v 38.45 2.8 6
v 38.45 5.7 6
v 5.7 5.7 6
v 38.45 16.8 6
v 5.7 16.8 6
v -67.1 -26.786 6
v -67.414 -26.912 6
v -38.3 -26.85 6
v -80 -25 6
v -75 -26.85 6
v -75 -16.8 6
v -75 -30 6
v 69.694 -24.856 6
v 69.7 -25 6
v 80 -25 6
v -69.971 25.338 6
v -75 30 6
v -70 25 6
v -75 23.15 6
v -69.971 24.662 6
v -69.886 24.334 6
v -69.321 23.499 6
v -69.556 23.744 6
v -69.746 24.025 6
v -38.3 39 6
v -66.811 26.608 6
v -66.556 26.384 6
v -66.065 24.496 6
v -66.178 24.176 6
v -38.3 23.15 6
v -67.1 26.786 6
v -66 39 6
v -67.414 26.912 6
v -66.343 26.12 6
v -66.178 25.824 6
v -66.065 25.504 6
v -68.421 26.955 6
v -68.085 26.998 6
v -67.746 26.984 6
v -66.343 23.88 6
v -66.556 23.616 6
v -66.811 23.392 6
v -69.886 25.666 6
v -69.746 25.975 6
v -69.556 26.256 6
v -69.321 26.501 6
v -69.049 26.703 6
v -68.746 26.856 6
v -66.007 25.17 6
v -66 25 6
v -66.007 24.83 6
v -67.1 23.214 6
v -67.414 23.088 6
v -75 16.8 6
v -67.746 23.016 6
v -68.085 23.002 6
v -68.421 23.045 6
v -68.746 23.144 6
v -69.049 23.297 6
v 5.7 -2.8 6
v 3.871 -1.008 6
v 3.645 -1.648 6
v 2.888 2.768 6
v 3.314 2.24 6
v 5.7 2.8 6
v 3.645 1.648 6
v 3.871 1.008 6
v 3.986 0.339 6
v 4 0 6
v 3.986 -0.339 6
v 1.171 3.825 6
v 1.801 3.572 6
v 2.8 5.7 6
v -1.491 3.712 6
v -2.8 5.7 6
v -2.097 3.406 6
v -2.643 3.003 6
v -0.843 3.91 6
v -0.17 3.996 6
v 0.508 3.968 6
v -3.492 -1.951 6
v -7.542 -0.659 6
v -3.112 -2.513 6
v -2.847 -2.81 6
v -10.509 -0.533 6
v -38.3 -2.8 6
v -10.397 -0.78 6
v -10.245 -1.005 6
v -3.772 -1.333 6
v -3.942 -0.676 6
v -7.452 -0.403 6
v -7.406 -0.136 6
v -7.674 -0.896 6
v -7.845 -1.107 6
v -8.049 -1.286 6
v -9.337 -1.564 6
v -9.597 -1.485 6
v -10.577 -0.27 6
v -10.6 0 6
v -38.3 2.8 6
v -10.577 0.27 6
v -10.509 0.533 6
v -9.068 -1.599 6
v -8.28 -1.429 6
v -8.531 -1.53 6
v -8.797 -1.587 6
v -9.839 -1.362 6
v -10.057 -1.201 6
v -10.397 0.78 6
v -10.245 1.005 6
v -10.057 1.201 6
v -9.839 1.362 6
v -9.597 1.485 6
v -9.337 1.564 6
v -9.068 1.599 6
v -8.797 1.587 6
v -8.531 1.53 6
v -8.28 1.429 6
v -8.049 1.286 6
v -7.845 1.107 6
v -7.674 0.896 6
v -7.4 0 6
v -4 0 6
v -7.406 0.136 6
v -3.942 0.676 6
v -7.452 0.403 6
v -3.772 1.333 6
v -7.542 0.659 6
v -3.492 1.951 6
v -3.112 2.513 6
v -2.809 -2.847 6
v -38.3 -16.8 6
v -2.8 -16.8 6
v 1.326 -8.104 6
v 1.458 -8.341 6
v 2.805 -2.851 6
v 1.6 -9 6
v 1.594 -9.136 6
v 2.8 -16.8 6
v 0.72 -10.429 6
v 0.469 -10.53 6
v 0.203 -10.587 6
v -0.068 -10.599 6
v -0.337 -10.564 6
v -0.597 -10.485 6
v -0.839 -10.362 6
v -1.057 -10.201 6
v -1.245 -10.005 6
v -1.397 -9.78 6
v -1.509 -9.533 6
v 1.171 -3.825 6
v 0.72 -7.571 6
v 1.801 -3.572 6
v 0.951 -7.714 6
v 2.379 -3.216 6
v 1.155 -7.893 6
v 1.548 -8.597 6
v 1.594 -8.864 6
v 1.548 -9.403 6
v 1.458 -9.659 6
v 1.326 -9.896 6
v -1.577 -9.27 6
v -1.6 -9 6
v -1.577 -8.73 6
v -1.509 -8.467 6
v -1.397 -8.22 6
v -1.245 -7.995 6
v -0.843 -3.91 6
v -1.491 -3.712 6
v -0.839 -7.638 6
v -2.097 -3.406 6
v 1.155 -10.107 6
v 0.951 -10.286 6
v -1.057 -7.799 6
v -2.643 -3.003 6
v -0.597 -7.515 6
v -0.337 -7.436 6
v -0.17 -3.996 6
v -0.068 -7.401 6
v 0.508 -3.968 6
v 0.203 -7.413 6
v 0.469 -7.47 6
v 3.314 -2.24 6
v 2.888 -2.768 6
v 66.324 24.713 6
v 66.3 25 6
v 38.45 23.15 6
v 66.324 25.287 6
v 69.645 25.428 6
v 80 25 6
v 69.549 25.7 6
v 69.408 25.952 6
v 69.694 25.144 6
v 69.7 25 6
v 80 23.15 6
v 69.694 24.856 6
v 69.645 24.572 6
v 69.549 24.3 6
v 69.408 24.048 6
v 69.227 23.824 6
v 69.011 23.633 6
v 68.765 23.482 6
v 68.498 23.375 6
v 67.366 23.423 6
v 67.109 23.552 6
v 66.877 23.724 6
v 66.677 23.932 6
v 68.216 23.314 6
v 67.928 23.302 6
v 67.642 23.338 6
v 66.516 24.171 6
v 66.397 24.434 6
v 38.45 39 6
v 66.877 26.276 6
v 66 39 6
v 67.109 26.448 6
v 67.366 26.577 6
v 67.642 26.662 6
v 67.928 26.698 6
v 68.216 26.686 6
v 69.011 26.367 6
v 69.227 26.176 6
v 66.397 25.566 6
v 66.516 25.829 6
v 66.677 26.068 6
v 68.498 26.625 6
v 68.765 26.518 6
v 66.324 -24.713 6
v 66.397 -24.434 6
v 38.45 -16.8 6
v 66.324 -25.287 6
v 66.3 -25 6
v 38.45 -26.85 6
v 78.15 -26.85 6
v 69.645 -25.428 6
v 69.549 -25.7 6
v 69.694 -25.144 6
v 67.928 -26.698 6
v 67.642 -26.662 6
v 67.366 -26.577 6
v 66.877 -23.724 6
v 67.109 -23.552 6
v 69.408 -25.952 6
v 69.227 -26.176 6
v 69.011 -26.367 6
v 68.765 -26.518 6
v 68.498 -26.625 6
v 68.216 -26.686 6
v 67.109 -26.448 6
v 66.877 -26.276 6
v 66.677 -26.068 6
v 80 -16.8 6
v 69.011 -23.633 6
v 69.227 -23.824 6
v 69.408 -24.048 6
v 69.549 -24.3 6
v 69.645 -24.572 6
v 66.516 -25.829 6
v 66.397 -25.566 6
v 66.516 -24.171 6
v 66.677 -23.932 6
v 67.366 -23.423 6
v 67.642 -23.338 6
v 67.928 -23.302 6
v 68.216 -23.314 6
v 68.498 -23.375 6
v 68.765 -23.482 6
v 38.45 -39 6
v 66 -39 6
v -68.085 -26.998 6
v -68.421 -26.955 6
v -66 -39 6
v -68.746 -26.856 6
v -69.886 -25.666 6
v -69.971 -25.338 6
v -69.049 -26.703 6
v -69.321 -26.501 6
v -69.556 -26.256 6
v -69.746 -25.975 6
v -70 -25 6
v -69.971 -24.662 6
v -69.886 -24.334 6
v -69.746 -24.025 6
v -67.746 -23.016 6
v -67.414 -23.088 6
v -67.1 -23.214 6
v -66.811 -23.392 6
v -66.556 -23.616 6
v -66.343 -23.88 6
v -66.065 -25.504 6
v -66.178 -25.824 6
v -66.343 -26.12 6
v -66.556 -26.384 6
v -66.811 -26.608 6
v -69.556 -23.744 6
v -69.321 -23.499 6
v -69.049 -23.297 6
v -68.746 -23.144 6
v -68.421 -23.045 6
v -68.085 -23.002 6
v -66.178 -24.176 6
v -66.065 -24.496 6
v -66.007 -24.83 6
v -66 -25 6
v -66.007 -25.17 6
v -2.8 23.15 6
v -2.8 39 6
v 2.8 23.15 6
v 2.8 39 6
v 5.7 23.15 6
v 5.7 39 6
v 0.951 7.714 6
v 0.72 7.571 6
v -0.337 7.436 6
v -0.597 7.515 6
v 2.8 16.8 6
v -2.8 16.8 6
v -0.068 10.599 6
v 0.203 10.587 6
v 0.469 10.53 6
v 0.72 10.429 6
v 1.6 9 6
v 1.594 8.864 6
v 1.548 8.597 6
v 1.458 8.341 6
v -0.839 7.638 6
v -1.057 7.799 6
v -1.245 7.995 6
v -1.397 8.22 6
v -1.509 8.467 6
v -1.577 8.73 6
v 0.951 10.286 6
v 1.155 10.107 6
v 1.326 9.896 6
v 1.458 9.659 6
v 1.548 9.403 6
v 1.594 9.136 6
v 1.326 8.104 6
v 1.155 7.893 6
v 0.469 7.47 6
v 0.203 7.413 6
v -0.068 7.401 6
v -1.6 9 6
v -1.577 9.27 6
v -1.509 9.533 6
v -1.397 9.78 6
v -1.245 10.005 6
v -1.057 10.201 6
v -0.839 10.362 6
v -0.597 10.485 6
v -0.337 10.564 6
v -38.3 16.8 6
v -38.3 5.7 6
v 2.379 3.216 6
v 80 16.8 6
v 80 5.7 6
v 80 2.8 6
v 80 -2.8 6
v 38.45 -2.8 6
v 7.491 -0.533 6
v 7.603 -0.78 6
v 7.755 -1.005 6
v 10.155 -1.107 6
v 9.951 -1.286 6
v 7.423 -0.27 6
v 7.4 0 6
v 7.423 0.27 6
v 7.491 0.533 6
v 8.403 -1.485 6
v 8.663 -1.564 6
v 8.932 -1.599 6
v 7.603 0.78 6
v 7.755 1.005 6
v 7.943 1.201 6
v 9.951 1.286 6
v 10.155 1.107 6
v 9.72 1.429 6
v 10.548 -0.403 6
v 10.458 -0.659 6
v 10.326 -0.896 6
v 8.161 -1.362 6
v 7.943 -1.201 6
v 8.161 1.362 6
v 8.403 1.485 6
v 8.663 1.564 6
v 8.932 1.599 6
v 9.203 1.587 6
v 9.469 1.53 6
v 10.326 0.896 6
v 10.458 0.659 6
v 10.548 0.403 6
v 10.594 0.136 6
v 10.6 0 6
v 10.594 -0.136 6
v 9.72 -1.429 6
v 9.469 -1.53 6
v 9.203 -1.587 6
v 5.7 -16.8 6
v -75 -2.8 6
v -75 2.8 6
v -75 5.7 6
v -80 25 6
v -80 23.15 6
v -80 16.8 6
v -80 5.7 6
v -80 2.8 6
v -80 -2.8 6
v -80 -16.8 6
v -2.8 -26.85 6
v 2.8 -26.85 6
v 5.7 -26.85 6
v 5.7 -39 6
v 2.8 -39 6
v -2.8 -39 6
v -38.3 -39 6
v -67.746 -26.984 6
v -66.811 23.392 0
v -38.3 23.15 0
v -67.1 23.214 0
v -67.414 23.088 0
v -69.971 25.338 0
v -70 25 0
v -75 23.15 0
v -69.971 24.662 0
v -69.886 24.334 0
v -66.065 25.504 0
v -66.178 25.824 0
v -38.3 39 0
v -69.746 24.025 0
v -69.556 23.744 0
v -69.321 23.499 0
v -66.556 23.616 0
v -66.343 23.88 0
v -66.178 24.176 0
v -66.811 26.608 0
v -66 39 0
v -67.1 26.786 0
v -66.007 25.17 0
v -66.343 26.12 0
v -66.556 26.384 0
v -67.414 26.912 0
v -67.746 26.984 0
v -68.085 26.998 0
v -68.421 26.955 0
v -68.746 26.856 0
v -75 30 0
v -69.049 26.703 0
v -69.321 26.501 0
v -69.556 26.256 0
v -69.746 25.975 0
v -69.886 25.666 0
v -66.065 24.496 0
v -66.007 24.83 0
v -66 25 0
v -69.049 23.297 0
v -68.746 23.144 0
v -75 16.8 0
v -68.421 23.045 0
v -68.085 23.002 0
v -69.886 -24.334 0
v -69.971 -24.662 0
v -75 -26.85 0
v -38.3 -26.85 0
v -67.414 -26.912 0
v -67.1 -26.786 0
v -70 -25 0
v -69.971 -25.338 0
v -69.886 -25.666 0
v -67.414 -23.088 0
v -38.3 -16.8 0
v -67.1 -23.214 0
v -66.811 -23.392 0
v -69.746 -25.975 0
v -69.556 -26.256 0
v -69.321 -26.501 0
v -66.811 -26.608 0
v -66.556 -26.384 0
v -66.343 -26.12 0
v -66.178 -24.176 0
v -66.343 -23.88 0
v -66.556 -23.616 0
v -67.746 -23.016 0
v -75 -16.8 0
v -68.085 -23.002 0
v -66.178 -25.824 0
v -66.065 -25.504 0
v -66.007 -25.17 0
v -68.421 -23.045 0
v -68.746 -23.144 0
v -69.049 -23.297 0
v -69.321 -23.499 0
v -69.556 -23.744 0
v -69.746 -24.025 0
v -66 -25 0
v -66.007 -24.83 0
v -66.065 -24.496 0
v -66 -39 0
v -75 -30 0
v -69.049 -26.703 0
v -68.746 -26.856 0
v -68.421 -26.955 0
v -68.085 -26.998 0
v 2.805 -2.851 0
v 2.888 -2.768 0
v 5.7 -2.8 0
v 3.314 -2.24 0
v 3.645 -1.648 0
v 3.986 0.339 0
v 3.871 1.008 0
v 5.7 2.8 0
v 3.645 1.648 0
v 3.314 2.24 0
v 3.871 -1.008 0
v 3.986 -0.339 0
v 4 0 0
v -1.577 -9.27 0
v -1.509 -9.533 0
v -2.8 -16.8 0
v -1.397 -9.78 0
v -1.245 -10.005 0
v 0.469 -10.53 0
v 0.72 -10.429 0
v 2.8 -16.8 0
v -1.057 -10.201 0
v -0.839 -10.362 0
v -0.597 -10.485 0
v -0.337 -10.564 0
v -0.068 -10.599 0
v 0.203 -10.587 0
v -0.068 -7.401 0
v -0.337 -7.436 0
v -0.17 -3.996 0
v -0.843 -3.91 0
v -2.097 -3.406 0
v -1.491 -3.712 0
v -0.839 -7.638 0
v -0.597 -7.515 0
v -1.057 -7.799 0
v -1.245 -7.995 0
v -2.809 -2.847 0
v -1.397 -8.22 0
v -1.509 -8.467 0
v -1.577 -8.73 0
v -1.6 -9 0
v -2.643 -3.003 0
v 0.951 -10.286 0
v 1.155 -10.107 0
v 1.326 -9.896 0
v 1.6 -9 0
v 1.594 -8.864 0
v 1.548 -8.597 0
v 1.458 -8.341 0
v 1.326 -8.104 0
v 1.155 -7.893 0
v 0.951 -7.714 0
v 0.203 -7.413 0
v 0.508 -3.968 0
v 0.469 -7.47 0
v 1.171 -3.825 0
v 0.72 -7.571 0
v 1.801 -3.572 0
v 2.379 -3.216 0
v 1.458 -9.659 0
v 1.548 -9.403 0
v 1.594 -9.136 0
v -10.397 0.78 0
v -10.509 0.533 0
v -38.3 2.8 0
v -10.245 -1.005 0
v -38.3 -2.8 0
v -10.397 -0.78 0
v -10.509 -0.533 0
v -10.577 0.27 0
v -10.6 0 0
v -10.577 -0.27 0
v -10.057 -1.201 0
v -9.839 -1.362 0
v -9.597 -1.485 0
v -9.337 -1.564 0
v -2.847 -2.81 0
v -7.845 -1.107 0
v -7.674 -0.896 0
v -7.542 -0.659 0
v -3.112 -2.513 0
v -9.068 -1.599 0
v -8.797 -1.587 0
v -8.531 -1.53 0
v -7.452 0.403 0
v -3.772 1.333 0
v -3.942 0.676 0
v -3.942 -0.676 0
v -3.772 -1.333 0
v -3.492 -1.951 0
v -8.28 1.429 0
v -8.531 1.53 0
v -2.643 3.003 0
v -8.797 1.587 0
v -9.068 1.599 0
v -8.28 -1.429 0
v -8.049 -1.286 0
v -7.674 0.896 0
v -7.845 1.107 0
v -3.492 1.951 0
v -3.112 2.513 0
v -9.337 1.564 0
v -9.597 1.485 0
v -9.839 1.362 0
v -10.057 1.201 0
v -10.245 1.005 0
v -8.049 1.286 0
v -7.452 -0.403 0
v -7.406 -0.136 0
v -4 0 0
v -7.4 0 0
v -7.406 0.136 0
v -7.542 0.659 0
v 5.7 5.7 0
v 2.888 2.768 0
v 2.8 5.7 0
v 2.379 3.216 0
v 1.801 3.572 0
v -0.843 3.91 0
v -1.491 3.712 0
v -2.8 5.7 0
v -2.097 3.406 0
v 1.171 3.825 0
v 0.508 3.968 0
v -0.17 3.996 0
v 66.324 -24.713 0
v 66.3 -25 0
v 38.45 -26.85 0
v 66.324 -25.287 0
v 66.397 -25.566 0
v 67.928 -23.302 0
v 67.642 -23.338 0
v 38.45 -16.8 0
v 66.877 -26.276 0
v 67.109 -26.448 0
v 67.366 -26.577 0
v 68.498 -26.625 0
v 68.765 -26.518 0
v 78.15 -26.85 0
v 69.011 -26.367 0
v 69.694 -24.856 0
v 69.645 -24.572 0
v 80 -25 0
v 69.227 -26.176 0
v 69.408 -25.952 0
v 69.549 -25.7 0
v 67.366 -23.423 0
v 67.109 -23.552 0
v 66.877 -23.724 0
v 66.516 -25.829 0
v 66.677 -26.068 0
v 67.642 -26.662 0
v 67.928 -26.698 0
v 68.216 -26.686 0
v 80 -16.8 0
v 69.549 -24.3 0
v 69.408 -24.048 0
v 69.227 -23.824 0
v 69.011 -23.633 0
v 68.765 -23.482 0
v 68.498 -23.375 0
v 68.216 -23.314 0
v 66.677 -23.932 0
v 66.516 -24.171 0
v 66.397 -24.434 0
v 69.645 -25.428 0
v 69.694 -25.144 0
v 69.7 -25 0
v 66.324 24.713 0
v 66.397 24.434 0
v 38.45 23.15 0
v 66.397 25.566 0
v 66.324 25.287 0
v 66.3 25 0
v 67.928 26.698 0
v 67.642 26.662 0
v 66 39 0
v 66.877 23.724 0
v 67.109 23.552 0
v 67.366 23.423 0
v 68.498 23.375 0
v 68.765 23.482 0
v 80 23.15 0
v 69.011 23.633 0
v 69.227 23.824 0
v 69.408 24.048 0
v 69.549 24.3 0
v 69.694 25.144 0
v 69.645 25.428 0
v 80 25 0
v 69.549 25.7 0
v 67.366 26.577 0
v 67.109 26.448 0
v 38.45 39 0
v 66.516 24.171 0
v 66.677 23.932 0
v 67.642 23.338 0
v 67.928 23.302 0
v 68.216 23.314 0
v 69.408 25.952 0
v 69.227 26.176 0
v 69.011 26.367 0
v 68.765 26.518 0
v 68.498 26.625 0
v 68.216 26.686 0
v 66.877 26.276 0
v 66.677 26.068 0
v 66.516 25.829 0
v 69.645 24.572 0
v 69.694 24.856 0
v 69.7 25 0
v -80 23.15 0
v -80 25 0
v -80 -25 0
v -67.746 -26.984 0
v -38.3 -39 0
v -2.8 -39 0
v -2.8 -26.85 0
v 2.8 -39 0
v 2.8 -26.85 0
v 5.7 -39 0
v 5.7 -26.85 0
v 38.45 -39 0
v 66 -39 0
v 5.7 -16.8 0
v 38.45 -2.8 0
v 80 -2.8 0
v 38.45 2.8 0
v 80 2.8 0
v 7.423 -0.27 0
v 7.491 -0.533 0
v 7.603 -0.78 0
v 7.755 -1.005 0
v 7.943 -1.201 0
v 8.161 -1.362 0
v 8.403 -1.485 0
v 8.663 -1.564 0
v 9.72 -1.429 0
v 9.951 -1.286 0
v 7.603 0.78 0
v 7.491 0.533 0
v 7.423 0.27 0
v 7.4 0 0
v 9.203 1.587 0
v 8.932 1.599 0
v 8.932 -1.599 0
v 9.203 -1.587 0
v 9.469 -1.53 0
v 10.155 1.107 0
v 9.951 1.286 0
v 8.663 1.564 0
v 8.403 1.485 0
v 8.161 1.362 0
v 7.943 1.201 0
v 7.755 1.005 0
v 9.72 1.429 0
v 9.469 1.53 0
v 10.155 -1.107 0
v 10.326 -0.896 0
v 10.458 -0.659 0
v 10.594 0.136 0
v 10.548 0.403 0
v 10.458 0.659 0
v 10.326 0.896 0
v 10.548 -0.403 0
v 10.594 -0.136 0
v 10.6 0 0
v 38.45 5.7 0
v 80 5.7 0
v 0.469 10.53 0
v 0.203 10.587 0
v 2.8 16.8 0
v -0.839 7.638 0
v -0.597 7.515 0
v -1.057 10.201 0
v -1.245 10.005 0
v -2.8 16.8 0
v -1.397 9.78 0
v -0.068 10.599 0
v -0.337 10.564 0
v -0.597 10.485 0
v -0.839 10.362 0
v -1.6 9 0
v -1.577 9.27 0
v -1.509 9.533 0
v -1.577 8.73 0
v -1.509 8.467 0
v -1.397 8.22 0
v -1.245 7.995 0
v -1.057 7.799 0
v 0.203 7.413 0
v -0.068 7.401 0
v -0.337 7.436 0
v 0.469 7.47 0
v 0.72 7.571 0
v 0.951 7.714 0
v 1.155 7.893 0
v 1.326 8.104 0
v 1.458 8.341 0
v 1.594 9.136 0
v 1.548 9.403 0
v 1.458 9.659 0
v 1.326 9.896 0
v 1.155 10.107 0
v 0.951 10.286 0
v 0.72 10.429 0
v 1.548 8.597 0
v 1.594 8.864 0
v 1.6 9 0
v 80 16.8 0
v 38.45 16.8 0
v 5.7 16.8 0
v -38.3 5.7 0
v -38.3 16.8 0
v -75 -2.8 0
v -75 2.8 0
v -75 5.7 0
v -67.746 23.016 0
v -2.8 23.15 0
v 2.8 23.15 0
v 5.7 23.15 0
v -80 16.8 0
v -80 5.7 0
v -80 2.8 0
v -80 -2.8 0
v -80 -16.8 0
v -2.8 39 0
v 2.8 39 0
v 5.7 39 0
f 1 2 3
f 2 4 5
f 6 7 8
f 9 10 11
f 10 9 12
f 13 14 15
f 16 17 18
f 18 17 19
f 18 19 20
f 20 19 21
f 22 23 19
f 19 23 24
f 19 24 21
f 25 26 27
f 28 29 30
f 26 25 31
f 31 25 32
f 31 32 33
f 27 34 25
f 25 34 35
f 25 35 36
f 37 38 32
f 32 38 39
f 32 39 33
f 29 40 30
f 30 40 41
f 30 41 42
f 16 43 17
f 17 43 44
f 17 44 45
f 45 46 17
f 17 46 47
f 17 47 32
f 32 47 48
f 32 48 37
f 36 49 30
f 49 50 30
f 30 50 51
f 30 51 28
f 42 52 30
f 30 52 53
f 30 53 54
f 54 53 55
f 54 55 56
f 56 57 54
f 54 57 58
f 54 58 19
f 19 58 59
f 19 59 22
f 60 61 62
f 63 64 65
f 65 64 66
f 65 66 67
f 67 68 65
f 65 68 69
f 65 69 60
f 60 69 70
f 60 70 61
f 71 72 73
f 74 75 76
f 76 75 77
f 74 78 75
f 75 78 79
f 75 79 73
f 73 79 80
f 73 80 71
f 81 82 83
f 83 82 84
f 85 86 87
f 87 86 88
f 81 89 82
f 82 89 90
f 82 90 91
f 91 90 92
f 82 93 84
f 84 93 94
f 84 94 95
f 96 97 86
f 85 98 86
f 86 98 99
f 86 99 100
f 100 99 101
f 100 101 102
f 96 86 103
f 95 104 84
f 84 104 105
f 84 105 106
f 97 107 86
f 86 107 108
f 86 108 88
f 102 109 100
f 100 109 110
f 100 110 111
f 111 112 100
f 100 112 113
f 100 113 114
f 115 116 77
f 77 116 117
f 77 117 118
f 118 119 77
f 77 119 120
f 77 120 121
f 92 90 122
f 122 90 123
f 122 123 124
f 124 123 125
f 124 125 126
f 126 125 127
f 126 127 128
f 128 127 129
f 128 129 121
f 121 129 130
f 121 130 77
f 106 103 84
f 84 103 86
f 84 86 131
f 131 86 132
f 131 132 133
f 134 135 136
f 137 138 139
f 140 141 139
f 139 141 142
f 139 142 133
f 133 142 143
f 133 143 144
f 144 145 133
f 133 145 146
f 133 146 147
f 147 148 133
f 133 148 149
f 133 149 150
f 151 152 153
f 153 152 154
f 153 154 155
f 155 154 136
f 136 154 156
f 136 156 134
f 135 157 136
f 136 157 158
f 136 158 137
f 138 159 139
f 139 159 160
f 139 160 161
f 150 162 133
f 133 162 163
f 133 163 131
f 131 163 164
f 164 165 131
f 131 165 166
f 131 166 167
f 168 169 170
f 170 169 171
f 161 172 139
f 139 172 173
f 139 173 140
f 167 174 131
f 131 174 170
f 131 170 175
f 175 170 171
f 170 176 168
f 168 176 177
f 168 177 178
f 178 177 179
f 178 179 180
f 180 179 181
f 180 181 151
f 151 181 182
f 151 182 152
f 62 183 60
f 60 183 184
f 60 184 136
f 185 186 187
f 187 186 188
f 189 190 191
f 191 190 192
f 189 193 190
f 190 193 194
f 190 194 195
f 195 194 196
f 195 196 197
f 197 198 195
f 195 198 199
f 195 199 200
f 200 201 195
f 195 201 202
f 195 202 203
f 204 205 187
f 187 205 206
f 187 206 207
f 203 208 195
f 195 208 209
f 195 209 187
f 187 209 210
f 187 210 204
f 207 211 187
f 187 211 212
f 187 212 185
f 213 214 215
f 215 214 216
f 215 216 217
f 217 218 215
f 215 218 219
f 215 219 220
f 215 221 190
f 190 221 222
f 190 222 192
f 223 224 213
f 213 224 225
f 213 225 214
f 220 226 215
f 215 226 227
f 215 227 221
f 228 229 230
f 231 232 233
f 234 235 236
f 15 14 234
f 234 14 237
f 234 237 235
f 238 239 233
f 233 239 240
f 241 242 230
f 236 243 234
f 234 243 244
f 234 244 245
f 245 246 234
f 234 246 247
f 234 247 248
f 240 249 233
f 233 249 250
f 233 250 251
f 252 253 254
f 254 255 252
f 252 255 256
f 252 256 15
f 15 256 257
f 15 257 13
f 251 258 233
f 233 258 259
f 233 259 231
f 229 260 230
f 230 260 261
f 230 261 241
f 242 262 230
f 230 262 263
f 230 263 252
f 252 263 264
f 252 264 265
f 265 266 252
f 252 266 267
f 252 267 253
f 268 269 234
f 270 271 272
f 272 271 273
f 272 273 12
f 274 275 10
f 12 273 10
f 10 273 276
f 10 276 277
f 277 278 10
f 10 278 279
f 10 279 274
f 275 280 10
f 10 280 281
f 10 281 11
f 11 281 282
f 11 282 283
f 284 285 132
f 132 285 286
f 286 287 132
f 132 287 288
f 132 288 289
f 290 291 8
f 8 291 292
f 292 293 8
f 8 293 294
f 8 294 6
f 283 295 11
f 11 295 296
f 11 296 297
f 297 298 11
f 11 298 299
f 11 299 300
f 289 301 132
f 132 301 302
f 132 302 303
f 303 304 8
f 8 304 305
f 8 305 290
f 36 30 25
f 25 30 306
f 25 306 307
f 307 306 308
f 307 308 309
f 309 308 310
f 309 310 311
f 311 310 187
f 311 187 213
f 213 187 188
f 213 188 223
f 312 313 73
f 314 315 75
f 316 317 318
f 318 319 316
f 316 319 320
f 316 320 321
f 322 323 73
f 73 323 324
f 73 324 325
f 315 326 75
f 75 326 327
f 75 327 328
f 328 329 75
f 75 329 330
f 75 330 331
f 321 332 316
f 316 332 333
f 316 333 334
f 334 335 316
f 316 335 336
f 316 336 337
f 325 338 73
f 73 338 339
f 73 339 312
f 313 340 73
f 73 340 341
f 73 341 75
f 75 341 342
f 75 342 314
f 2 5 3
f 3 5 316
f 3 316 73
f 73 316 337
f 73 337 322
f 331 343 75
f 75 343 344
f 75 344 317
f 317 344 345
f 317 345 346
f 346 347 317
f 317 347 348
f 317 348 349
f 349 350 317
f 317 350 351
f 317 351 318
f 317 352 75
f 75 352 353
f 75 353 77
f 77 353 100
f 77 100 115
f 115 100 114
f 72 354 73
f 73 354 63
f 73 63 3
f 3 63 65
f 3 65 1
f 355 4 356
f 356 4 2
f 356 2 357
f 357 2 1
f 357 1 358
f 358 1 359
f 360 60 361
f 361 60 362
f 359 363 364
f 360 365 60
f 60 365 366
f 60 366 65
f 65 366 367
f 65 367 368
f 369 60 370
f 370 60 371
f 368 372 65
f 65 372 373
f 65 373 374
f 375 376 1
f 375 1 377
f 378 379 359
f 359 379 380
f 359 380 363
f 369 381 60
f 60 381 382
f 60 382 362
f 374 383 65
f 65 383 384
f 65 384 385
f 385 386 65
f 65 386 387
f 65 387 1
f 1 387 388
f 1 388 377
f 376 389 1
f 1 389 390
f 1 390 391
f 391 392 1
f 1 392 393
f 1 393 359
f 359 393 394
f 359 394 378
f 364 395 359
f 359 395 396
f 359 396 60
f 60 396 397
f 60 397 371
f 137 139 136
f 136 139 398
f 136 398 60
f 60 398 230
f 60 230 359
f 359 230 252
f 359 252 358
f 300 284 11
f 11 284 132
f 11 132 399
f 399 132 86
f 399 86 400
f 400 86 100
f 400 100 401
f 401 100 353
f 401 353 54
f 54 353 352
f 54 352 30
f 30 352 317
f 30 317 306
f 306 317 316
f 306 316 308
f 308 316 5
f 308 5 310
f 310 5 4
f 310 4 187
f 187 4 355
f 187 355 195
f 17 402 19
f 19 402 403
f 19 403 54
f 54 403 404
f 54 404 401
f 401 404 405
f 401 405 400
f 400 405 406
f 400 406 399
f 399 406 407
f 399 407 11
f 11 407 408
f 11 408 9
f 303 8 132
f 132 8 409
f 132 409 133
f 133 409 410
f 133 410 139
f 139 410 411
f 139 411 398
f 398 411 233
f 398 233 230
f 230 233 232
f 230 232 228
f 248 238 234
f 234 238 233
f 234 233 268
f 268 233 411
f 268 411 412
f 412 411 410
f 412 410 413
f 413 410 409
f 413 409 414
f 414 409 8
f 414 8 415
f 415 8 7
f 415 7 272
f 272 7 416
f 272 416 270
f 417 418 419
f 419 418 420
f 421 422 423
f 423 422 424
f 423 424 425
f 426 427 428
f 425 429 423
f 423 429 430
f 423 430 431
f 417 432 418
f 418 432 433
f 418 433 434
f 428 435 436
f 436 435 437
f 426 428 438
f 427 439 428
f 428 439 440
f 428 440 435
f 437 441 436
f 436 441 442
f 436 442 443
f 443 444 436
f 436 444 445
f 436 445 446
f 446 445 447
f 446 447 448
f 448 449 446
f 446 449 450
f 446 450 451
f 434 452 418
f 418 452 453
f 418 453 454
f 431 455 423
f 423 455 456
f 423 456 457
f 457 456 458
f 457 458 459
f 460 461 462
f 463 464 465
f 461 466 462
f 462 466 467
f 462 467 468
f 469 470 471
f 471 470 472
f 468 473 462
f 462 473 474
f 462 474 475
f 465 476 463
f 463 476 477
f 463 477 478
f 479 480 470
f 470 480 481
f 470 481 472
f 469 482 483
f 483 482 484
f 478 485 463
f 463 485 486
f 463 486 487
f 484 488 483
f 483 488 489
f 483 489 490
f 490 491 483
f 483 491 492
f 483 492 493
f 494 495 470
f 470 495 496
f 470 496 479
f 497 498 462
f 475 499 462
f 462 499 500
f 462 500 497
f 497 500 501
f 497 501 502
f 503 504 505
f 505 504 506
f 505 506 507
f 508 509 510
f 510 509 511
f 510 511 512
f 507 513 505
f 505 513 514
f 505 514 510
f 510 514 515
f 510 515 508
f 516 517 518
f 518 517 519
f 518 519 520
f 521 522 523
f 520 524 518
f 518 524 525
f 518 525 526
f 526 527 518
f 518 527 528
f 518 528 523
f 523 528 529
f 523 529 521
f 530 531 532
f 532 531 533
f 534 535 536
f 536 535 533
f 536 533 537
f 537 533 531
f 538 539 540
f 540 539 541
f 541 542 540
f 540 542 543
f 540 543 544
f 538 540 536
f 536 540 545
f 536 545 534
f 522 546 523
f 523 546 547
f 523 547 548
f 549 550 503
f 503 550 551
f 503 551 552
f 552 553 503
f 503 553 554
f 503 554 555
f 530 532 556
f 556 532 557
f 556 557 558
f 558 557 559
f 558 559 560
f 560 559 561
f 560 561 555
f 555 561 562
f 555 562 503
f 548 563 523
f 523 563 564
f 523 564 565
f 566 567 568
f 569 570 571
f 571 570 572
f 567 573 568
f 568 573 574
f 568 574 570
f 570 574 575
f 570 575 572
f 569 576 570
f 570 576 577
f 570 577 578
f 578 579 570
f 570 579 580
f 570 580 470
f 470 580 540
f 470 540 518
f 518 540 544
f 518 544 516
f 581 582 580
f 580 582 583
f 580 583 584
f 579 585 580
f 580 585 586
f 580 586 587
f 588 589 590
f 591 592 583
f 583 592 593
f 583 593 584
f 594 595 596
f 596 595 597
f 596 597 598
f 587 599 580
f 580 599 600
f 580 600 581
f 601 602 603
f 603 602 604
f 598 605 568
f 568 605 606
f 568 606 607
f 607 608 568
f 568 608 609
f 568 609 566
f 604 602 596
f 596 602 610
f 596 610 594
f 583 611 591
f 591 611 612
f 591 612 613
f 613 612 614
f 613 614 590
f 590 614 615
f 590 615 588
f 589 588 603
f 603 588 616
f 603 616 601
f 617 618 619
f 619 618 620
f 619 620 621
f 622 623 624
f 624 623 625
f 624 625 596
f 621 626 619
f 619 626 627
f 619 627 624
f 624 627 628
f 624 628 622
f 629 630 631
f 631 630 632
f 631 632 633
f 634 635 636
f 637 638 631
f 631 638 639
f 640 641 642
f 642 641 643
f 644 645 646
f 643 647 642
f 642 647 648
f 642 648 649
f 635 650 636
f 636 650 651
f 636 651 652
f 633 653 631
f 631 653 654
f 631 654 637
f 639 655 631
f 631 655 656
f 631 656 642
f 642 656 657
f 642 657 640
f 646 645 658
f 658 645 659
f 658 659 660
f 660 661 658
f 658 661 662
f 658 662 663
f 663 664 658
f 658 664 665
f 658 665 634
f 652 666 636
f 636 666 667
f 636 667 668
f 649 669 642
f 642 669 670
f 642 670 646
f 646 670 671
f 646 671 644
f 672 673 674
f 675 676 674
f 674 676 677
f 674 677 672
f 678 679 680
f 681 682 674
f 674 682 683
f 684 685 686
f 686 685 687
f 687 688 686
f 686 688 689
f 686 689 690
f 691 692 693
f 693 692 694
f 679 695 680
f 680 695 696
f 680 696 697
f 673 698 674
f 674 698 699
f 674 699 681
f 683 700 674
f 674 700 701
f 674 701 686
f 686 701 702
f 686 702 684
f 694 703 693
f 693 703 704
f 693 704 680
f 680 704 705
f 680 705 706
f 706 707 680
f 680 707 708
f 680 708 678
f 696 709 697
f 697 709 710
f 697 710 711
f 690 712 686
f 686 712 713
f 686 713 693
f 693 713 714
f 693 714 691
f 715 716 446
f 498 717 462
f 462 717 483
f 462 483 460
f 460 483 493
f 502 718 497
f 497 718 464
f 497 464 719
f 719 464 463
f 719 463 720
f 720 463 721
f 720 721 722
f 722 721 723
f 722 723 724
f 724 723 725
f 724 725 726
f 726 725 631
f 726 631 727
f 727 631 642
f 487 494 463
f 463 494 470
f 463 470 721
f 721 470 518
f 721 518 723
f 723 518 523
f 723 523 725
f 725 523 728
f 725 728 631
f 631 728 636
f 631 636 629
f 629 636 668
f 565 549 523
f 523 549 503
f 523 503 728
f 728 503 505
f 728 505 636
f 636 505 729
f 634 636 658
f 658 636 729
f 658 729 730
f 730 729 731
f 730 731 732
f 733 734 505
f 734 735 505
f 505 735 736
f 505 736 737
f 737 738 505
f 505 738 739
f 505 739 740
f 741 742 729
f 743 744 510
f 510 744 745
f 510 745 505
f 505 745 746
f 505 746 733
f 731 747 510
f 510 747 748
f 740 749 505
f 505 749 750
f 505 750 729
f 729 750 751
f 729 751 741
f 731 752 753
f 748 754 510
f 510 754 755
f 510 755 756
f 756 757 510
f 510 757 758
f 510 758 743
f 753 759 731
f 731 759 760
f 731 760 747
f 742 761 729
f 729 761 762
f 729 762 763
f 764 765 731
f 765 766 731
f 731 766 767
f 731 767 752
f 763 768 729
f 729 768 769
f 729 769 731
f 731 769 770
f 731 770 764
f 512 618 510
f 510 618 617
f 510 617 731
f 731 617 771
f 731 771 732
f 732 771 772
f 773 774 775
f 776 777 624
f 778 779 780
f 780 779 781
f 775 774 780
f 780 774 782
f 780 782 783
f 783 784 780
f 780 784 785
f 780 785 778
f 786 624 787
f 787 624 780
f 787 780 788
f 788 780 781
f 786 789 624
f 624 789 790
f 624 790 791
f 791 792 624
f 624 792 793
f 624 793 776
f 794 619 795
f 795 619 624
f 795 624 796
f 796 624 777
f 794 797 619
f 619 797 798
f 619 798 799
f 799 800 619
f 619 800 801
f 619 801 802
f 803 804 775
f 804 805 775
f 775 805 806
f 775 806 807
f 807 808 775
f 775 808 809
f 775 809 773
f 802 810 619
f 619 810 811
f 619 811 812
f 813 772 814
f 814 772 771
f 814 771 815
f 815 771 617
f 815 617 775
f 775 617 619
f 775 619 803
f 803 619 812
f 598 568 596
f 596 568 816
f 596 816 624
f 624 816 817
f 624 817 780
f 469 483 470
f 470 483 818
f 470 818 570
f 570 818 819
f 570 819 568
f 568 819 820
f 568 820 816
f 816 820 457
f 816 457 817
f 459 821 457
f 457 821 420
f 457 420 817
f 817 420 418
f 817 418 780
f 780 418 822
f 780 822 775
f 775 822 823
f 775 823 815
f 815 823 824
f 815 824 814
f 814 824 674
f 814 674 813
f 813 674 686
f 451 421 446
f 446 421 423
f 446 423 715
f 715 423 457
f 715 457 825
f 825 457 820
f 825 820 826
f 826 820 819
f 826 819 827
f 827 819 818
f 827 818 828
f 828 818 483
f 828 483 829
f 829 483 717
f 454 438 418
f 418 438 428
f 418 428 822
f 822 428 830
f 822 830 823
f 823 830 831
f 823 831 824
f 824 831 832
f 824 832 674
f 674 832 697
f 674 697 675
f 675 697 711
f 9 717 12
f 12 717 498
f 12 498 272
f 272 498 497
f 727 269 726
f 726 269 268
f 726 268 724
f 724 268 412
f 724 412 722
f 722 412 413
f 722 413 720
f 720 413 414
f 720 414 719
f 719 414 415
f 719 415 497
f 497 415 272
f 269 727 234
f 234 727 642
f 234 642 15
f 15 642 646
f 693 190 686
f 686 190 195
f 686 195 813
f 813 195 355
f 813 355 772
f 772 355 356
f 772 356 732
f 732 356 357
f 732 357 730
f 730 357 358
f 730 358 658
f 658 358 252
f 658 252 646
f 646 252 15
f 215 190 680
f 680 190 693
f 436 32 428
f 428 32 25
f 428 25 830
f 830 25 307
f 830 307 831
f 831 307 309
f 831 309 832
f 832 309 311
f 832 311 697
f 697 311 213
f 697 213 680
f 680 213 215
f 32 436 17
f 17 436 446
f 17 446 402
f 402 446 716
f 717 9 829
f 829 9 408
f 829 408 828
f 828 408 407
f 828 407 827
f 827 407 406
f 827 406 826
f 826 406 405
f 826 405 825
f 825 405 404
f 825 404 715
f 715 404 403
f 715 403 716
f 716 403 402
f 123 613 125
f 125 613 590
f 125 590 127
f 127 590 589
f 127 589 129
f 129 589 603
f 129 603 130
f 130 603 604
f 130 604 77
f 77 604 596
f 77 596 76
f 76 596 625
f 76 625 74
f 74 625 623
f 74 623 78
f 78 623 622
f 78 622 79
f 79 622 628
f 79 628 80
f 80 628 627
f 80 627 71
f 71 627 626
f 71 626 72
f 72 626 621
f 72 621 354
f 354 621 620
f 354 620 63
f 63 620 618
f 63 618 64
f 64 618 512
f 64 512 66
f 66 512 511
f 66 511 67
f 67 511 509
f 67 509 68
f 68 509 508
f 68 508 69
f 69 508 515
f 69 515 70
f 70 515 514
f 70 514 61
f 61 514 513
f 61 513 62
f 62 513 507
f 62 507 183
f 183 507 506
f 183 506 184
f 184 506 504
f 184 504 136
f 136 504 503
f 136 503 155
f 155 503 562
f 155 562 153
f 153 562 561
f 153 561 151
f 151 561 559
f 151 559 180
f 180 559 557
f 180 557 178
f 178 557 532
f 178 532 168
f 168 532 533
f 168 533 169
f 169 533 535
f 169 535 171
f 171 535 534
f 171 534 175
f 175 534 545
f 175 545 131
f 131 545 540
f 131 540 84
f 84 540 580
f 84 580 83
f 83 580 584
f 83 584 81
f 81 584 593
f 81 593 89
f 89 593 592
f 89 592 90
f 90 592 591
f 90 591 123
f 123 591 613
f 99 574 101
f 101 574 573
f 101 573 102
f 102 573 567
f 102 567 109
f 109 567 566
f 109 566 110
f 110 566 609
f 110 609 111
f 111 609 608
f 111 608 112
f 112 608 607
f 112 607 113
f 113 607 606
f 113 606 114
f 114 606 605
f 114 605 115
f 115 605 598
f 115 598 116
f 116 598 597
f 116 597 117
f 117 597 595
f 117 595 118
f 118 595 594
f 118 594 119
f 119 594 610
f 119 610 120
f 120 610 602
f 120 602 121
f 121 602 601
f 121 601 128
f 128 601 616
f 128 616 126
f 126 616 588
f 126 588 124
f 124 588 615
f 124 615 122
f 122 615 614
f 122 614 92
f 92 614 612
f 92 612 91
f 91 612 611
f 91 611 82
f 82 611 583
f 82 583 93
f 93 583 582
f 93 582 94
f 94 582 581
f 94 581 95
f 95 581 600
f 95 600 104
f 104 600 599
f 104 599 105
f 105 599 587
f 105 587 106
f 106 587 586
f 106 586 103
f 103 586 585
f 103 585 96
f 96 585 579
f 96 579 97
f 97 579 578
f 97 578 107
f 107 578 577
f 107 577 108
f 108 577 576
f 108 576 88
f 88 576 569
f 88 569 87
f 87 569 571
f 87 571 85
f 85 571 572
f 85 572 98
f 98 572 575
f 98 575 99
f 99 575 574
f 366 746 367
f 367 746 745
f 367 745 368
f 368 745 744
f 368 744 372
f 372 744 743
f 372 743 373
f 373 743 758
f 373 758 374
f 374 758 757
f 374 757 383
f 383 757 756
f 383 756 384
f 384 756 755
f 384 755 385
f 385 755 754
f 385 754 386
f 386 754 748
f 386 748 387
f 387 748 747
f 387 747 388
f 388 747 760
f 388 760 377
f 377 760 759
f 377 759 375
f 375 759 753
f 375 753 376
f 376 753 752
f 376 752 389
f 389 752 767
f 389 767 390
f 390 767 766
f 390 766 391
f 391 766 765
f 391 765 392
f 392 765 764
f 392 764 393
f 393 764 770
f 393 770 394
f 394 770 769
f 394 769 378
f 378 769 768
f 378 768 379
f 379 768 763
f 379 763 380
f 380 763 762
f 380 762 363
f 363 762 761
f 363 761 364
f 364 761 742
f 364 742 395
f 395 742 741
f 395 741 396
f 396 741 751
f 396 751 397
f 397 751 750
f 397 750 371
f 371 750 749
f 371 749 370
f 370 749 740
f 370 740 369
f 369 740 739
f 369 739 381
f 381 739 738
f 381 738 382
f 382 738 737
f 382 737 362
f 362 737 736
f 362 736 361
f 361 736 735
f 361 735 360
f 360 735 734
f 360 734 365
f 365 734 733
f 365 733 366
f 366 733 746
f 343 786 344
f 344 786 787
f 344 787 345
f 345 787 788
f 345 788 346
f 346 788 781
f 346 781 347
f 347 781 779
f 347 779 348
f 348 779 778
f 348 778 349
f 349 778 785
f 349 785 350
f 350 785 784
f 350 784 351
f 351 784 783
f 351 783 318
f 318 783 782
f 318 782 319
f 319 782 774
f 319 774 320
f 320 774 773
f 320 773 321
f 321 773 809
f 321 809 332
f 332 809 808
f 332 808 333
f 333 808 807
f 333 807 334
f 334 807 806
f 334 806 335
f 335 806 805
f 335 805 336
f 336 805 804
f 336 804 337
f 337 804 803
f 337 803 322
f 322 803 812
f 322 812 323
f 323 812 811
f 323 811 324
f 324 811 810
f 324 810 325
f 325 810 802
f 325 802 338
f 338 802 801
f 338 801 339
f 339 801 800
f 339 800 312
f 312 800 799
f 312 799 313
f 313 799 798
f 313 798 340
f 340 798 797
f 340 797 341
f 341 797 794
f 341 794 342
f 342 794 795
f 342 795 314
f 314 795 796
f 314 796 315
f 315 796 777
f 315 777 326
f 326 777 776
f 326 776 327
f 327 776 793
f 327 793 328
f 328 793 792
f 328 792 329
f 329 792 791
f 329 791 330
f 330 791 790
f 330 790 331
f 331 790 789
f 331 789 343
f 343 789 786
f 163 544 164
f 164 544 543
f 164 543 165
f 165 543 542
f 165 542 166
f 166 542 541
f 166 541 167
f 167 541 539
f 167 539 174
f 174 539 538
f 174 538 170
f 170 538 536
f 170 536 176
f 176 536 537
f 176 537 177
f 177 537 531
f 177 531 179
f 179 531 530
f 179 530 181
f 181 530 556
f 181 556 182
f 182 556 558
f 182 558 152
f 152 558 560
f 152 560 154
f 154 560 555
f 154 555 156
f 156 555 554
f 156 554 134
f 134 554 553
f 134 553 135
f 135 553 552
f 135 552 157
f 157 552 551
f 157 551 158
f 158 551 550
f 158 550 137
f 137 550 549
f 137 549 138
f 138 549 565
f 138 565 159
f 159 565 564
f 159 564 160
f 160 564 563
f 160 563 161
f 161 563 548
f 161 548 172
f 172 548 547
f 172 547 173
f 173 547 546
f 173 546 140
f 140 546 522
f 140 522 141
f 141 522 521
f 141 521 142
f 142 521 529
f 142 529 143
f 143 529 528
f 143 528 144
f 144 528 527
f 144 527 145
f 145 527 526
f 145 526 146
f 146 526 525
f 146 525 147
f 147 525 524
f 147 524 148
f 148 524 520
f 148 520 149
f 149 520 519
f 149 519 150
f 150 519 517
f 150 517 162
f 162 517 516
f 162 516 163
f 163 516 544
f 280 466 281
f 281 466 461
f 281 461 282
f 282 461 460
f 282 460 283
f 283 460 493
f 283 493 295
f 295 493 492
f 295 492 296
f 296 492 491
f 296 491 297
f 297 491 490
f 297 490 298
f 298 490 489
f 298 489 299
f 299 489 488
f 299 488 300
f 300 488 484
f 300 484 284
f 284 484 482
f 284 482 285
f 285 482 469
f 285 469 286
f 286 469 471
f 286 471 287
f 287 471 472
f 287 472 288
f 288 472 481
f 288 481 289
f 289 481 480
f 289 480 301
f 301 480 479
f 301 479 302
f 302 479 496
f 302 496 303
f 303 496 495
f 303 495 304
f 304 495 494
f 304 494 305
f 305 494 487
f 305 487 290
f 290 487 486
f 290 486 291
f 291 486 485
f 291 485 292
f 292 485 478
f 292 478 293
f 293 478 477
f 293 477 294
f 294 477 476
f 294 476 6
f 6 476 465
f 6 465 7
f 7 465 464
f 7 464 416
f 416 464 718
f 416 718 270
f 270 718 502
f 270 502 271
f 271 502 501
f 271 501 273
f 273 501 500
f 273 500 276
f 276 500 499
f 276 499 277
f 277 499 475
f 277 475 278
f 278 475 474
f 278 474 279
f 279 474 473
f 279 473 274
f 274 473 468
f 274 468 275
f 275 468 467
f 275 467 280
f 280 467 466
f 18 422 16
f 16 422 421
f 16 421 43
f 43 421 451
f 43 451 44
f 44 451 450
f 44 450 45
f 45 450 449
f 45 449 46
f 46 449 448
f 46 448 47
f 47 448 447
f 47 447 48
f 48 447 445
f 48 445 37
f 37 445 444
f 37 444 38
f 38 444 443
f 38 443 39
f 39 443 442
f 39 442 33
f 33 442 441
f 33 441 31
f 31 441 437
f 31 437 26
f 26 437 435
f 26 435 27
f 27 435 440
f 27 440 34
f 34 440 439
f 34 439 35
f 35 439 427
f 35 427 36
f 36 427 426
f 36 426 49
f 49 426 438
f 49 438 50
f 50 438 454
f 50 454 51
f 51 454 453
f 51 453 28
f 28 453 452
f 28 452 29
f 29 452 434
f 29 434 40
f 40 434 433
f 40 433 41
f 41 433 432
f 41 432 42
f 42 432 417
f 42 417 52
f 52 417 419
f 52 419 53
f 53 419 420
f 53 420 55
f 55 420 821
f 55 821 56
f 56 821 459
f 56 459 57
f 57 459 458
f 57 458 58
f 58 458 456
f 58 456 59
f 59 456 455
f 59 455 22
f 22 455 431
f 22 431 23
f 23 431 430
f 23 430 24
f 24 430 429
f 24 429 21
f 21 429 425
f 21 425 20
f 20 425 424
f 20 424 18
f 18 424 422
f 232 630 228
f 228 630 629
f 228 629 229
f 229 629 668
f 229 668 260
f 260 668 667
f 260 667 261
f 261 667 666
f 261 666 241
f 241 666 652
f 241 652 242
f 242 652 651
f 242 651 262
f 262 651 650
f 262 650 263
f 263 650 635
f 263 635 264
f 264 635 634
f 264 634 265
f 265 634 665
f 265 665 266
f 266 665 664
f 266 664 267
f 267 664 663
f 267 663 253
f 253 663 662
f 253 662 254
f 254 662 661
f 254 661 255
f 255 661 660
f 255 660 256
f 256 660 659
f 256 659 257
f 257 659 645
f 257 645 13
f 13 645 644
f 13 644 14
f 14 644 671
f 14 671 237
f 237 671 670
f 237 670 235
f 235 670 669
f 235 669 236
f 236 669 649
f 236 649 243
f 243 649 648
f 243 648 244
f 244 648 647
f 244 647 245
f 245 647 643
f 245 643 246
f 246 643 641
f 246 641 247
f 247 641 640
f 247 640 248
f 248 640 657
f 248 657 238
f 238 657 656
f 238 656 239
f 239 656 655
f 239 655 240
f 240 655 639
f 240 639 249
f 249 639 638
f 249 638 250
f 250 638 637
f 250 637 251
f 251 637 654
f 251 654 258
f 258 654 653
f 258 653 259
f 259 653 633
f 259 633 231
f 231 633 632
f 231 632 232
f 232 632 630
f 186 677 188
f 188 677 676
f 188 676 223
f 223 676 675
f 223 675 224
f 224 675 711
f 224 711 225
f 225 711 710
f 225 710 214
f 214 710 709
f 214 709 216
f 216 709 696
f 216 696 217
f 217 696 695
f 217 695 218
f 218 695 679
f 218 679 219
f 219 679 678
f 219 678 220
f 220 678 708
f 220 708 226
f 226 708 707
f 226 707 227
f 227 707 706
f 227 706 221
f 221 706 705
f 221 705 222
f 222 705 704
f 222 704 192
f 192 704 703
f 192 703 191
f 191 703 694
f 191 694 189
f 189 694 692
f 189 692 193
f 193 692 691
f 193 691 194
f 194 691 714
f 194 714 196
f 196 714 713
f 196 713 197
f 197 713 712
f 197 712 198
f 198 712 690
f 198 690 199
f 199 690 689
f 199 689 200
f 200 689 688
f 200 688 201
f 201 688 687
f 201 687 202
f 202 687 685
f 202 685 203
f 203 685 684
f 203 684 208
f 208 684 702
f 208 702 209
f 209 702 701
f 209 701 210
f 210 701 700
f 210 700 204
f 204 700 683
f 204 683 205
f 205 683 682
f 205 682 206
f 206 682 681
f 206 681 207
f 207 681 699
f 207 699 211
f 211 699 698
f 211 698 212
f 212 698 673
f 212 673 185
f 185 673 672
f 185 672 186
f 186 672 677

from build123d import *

# Parameters (mm, degrees)
SKETCH_1_R               = 4
SKETCH_1_R_2             = 1.6
SKETCH_1_R_3             = 2
SKETCH_1_R_4             = 1.7
F_06_ROTATING_YOKE_DEPTH = 6


with BuildPart() as part:
    # Эскиз1 → 06_Rotating_yoke (new body)
    with BuildSketch(Plane.XY):
        Polygon((-66, -39), (66, -39), (80, -25), (80, 25), (66, 39), (-66, 39), (-80, 25), (-80, -25), align=None)
        Circle(SKETCH_1_R, mode=Mode.SUBTRACT)
        with Locations((-9, 0)):
            Circle(SKETCH_1_R_2, mode=Mode.SUBTRACT)
        with Locations((9, 0)):
            Circle(SKETCH_1_R_2, mode=Mode.SUBTRACT)
        with Locations((0, 9)):
            Circle(SKETCH_1_R_2, mode=Mode.SUBTRACT)
        with Locations((0, -9)):
            Circle(SKETCH_1_R_2, mode=Mode.SUBTRACT)
        with Locations((-68, -25)):
            Circle(SKETCH_1_R_3, mode=Mode.SUBTRACT)
        with Locations((-68, 25)):
            Circle(SKETCH_1_R_3, mode=Mode.SUBTRACT)
        with Locations((68, -25)):
            Circle(SKETCH_1_R_4, mode=Mode.SUBTRACT)
        with Locations((68, 25)):
            Circle(SKETCH_1_R_4, mode=Mode.SUBTRACT)
    extrude(amount=F_06_ROTATING_YOKE_DEPTH)


solid = part.part
